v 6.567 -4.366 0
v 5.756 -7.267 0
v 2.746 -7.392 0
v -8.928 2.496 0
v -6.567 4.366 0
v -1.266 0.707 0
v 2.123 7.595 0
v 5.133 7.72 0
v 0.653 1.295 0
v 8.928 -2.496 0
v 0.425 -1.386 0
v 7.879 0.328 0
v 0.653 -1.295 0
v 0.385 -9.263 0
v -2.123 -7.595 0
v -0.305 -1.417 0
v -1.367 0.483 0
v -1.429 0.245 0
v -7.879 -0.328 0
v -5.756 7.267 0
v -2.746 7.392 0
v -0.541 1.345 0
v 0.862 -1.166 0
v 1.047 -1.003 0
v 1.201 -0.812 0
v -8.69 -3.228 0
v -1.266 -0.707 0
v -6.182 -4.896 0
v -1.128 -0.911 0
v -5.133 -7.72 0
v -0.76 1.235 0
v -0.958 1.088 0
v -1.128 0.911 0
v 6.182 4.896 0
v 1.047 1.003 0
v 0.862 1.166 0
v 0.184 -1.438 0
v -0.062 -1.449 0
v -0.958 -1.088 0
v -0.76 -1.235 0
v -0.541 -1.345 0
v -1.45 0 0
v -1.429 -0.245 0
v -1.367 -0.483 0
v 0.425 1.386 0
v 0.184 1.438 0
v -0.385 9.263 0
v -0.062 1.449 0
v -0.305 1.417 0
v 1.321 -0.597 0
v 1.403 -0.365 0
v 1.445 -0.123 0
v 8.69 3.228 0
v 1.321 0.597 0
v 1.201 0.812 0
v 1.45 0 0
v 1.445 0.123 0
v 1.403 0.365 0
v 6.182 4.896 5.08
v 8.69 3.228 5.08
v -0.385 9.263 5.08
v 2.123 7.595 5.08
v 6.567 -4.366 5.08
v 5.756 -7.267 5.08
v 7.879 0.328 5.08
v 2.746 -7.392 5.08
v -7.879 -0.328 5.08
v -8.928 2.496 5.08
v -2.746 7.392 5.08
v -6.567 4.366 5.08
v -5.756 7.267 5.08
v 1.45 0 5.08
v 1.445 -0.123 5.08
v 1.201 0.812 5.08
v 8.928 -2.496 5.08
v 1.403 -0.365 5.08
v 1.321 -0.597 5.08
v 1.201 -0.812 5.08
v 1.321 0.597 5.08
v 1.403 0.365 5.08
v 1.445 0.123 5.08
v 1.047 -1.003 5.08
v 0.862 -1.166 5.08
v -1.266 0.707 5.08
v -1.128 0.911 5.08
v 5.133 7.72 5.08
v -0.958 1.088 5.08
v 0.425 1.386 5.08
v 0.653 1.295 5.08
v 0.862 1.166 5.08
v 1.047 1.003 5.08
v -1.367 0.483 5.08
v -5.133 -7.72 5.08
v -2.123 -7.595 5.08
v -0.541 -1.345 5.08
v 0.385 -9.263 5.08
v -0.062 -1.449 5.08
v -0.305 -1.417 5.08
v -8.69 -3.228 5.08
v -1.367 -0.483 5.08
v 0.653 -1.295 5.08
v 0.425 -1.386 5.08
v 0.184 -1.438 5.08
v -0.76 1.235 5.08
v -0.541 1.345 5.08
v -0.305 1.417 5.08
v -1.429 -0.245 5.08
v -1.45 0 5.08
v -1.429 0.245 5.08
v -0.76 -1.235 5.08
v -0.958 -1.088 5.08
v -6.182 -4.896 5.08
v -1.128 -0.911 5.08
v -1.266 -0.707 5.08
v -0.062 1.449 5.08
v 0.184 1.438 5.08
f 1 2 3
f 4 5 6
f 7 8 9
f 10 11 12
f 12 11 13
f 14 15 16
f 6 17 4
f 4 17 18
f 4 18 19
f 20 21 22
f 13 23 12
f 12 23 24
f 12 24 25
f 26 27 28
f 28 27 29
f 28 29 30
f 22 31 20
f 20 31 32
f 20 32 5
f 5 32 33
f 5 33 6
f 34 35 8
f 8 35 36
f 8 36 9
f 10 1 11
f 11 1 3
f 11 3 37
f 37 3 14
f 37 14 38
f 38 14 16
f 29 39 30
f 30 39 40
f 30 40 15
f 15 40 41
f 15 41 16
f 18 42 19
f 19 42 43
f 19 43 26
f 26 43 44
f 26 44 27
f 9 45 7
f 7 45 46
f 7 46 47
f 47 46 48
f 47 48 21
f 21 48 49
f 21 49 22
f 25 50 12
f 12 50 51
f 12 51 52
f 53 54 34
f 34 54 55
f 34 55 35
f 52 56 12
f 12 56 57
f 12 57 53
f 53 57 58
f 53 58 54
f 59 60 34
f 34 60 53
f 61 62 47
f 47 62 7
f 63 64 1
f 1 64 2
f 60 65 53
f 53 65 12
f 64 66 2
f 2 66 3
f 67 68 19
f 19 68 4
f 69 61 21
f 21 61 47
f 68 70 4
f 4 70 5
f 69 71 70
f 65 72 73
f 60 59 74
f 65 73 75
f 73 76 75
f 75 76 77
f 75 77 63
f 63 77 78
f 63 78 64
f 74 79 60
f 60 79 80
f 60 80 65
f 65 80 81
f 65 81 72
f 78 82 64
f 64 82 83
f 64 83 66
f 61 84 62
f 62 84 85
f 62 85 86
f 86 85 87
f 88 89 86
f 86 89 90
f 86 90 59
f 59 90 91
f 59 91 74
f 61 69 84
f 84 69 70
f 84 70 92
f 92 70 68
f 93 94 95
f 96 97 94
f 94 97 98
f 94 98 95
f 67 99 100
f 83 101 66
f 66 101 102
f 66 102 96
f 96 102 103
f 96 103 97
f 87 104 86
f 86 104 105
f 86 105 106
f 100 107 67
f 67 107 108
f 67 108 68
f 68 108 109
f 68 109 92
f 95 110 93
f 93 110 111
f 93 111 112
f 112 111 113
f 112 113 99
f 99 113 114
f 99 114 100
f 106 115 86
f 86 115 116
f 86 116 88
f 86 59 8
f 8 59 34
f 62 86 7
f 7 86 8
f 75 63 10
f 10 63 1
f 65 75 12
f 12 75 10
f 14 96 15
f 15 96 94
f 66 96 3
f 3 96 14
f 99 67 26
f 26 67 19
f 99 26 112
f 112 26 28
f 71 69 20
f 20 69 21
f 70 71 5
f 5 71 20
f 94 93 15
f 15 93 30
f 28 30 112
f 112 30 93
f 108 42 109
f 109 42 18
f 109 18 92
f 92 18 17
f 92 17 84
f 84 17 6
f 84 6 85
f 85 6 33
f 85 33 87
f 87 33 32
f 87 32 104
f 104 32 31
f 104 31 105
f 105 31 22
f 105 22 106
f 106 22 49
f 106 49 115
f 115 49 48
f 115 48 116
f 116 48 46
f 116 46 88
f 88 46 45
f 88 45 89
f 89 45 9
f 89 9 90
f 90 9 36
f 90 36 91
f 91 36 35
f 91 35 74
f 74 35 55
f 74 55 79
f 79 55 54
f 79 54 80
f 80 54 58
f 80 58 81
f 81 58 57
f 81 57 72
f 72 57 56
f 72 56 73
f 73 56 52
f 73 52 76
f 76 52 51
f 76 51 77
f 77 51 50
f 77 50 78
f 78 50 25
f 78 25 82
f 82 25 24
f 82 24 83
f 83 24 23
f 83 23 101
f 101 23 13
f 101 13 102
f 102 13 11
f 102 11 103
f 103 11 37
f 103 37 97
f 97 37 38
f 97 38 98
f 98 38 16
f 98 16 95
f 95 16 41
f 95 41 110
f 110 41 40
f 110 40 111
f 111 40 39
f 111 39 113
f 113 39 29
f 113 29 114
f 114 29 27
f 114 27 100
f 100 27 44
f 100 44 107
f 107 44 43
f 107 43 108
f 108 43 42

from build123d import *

# Parameters (mm, degrees)
BOSS_EXTRUDE1_DEPTH = 5.08
SKETCH2_3_R         = 1.45
CUT_EXTRUDE1_DEPTH  = 14.831568379


with BuildPart() as part:
    # Sketch2 → Boss-Extrude1 (new body)
    with BuildSketch(Plane.XY):
        Polygon((6.181876589, 4.896209998), (5.132895747, 7.719827316), (2.123323189, 7.594732987), (-0.385000757, 9.262511914), (-2.7462675, 7.392326111), (-5.755840057, 7.267231781), (-6.566877347, 4.366301916), (-8.928144089, 2.496116113), (-7.879163247, -0.327501205), (-8.690200536, -3.228431071), (-6.181876589, -4.896209998), (-5.132895747, -7.719827316), (-2.123323189, -7.594732987), (0.385000757, -9.262511914), (2.7462675, -7.392326111), (5.755840057, -7.267231781), (6.566877347, -4.366301916), (8.928144089, -2.496116113), (7.879163247, 0.327501205), (8.690200536, 3.228431071), align=None)
    extrude(amount=BOSS_EXTRUDE1_DEPTH)

    # Sketch2<3> → Cut-Extrude1 (cut, through all)
    with BuildSketch(Plane.XY):
        Circle(SKETCH2_3_R)
    extrude(amount=CUT_EXTRUDE1_DEPTH, mode=Mode.SUBTRACT)


solid = part.part
